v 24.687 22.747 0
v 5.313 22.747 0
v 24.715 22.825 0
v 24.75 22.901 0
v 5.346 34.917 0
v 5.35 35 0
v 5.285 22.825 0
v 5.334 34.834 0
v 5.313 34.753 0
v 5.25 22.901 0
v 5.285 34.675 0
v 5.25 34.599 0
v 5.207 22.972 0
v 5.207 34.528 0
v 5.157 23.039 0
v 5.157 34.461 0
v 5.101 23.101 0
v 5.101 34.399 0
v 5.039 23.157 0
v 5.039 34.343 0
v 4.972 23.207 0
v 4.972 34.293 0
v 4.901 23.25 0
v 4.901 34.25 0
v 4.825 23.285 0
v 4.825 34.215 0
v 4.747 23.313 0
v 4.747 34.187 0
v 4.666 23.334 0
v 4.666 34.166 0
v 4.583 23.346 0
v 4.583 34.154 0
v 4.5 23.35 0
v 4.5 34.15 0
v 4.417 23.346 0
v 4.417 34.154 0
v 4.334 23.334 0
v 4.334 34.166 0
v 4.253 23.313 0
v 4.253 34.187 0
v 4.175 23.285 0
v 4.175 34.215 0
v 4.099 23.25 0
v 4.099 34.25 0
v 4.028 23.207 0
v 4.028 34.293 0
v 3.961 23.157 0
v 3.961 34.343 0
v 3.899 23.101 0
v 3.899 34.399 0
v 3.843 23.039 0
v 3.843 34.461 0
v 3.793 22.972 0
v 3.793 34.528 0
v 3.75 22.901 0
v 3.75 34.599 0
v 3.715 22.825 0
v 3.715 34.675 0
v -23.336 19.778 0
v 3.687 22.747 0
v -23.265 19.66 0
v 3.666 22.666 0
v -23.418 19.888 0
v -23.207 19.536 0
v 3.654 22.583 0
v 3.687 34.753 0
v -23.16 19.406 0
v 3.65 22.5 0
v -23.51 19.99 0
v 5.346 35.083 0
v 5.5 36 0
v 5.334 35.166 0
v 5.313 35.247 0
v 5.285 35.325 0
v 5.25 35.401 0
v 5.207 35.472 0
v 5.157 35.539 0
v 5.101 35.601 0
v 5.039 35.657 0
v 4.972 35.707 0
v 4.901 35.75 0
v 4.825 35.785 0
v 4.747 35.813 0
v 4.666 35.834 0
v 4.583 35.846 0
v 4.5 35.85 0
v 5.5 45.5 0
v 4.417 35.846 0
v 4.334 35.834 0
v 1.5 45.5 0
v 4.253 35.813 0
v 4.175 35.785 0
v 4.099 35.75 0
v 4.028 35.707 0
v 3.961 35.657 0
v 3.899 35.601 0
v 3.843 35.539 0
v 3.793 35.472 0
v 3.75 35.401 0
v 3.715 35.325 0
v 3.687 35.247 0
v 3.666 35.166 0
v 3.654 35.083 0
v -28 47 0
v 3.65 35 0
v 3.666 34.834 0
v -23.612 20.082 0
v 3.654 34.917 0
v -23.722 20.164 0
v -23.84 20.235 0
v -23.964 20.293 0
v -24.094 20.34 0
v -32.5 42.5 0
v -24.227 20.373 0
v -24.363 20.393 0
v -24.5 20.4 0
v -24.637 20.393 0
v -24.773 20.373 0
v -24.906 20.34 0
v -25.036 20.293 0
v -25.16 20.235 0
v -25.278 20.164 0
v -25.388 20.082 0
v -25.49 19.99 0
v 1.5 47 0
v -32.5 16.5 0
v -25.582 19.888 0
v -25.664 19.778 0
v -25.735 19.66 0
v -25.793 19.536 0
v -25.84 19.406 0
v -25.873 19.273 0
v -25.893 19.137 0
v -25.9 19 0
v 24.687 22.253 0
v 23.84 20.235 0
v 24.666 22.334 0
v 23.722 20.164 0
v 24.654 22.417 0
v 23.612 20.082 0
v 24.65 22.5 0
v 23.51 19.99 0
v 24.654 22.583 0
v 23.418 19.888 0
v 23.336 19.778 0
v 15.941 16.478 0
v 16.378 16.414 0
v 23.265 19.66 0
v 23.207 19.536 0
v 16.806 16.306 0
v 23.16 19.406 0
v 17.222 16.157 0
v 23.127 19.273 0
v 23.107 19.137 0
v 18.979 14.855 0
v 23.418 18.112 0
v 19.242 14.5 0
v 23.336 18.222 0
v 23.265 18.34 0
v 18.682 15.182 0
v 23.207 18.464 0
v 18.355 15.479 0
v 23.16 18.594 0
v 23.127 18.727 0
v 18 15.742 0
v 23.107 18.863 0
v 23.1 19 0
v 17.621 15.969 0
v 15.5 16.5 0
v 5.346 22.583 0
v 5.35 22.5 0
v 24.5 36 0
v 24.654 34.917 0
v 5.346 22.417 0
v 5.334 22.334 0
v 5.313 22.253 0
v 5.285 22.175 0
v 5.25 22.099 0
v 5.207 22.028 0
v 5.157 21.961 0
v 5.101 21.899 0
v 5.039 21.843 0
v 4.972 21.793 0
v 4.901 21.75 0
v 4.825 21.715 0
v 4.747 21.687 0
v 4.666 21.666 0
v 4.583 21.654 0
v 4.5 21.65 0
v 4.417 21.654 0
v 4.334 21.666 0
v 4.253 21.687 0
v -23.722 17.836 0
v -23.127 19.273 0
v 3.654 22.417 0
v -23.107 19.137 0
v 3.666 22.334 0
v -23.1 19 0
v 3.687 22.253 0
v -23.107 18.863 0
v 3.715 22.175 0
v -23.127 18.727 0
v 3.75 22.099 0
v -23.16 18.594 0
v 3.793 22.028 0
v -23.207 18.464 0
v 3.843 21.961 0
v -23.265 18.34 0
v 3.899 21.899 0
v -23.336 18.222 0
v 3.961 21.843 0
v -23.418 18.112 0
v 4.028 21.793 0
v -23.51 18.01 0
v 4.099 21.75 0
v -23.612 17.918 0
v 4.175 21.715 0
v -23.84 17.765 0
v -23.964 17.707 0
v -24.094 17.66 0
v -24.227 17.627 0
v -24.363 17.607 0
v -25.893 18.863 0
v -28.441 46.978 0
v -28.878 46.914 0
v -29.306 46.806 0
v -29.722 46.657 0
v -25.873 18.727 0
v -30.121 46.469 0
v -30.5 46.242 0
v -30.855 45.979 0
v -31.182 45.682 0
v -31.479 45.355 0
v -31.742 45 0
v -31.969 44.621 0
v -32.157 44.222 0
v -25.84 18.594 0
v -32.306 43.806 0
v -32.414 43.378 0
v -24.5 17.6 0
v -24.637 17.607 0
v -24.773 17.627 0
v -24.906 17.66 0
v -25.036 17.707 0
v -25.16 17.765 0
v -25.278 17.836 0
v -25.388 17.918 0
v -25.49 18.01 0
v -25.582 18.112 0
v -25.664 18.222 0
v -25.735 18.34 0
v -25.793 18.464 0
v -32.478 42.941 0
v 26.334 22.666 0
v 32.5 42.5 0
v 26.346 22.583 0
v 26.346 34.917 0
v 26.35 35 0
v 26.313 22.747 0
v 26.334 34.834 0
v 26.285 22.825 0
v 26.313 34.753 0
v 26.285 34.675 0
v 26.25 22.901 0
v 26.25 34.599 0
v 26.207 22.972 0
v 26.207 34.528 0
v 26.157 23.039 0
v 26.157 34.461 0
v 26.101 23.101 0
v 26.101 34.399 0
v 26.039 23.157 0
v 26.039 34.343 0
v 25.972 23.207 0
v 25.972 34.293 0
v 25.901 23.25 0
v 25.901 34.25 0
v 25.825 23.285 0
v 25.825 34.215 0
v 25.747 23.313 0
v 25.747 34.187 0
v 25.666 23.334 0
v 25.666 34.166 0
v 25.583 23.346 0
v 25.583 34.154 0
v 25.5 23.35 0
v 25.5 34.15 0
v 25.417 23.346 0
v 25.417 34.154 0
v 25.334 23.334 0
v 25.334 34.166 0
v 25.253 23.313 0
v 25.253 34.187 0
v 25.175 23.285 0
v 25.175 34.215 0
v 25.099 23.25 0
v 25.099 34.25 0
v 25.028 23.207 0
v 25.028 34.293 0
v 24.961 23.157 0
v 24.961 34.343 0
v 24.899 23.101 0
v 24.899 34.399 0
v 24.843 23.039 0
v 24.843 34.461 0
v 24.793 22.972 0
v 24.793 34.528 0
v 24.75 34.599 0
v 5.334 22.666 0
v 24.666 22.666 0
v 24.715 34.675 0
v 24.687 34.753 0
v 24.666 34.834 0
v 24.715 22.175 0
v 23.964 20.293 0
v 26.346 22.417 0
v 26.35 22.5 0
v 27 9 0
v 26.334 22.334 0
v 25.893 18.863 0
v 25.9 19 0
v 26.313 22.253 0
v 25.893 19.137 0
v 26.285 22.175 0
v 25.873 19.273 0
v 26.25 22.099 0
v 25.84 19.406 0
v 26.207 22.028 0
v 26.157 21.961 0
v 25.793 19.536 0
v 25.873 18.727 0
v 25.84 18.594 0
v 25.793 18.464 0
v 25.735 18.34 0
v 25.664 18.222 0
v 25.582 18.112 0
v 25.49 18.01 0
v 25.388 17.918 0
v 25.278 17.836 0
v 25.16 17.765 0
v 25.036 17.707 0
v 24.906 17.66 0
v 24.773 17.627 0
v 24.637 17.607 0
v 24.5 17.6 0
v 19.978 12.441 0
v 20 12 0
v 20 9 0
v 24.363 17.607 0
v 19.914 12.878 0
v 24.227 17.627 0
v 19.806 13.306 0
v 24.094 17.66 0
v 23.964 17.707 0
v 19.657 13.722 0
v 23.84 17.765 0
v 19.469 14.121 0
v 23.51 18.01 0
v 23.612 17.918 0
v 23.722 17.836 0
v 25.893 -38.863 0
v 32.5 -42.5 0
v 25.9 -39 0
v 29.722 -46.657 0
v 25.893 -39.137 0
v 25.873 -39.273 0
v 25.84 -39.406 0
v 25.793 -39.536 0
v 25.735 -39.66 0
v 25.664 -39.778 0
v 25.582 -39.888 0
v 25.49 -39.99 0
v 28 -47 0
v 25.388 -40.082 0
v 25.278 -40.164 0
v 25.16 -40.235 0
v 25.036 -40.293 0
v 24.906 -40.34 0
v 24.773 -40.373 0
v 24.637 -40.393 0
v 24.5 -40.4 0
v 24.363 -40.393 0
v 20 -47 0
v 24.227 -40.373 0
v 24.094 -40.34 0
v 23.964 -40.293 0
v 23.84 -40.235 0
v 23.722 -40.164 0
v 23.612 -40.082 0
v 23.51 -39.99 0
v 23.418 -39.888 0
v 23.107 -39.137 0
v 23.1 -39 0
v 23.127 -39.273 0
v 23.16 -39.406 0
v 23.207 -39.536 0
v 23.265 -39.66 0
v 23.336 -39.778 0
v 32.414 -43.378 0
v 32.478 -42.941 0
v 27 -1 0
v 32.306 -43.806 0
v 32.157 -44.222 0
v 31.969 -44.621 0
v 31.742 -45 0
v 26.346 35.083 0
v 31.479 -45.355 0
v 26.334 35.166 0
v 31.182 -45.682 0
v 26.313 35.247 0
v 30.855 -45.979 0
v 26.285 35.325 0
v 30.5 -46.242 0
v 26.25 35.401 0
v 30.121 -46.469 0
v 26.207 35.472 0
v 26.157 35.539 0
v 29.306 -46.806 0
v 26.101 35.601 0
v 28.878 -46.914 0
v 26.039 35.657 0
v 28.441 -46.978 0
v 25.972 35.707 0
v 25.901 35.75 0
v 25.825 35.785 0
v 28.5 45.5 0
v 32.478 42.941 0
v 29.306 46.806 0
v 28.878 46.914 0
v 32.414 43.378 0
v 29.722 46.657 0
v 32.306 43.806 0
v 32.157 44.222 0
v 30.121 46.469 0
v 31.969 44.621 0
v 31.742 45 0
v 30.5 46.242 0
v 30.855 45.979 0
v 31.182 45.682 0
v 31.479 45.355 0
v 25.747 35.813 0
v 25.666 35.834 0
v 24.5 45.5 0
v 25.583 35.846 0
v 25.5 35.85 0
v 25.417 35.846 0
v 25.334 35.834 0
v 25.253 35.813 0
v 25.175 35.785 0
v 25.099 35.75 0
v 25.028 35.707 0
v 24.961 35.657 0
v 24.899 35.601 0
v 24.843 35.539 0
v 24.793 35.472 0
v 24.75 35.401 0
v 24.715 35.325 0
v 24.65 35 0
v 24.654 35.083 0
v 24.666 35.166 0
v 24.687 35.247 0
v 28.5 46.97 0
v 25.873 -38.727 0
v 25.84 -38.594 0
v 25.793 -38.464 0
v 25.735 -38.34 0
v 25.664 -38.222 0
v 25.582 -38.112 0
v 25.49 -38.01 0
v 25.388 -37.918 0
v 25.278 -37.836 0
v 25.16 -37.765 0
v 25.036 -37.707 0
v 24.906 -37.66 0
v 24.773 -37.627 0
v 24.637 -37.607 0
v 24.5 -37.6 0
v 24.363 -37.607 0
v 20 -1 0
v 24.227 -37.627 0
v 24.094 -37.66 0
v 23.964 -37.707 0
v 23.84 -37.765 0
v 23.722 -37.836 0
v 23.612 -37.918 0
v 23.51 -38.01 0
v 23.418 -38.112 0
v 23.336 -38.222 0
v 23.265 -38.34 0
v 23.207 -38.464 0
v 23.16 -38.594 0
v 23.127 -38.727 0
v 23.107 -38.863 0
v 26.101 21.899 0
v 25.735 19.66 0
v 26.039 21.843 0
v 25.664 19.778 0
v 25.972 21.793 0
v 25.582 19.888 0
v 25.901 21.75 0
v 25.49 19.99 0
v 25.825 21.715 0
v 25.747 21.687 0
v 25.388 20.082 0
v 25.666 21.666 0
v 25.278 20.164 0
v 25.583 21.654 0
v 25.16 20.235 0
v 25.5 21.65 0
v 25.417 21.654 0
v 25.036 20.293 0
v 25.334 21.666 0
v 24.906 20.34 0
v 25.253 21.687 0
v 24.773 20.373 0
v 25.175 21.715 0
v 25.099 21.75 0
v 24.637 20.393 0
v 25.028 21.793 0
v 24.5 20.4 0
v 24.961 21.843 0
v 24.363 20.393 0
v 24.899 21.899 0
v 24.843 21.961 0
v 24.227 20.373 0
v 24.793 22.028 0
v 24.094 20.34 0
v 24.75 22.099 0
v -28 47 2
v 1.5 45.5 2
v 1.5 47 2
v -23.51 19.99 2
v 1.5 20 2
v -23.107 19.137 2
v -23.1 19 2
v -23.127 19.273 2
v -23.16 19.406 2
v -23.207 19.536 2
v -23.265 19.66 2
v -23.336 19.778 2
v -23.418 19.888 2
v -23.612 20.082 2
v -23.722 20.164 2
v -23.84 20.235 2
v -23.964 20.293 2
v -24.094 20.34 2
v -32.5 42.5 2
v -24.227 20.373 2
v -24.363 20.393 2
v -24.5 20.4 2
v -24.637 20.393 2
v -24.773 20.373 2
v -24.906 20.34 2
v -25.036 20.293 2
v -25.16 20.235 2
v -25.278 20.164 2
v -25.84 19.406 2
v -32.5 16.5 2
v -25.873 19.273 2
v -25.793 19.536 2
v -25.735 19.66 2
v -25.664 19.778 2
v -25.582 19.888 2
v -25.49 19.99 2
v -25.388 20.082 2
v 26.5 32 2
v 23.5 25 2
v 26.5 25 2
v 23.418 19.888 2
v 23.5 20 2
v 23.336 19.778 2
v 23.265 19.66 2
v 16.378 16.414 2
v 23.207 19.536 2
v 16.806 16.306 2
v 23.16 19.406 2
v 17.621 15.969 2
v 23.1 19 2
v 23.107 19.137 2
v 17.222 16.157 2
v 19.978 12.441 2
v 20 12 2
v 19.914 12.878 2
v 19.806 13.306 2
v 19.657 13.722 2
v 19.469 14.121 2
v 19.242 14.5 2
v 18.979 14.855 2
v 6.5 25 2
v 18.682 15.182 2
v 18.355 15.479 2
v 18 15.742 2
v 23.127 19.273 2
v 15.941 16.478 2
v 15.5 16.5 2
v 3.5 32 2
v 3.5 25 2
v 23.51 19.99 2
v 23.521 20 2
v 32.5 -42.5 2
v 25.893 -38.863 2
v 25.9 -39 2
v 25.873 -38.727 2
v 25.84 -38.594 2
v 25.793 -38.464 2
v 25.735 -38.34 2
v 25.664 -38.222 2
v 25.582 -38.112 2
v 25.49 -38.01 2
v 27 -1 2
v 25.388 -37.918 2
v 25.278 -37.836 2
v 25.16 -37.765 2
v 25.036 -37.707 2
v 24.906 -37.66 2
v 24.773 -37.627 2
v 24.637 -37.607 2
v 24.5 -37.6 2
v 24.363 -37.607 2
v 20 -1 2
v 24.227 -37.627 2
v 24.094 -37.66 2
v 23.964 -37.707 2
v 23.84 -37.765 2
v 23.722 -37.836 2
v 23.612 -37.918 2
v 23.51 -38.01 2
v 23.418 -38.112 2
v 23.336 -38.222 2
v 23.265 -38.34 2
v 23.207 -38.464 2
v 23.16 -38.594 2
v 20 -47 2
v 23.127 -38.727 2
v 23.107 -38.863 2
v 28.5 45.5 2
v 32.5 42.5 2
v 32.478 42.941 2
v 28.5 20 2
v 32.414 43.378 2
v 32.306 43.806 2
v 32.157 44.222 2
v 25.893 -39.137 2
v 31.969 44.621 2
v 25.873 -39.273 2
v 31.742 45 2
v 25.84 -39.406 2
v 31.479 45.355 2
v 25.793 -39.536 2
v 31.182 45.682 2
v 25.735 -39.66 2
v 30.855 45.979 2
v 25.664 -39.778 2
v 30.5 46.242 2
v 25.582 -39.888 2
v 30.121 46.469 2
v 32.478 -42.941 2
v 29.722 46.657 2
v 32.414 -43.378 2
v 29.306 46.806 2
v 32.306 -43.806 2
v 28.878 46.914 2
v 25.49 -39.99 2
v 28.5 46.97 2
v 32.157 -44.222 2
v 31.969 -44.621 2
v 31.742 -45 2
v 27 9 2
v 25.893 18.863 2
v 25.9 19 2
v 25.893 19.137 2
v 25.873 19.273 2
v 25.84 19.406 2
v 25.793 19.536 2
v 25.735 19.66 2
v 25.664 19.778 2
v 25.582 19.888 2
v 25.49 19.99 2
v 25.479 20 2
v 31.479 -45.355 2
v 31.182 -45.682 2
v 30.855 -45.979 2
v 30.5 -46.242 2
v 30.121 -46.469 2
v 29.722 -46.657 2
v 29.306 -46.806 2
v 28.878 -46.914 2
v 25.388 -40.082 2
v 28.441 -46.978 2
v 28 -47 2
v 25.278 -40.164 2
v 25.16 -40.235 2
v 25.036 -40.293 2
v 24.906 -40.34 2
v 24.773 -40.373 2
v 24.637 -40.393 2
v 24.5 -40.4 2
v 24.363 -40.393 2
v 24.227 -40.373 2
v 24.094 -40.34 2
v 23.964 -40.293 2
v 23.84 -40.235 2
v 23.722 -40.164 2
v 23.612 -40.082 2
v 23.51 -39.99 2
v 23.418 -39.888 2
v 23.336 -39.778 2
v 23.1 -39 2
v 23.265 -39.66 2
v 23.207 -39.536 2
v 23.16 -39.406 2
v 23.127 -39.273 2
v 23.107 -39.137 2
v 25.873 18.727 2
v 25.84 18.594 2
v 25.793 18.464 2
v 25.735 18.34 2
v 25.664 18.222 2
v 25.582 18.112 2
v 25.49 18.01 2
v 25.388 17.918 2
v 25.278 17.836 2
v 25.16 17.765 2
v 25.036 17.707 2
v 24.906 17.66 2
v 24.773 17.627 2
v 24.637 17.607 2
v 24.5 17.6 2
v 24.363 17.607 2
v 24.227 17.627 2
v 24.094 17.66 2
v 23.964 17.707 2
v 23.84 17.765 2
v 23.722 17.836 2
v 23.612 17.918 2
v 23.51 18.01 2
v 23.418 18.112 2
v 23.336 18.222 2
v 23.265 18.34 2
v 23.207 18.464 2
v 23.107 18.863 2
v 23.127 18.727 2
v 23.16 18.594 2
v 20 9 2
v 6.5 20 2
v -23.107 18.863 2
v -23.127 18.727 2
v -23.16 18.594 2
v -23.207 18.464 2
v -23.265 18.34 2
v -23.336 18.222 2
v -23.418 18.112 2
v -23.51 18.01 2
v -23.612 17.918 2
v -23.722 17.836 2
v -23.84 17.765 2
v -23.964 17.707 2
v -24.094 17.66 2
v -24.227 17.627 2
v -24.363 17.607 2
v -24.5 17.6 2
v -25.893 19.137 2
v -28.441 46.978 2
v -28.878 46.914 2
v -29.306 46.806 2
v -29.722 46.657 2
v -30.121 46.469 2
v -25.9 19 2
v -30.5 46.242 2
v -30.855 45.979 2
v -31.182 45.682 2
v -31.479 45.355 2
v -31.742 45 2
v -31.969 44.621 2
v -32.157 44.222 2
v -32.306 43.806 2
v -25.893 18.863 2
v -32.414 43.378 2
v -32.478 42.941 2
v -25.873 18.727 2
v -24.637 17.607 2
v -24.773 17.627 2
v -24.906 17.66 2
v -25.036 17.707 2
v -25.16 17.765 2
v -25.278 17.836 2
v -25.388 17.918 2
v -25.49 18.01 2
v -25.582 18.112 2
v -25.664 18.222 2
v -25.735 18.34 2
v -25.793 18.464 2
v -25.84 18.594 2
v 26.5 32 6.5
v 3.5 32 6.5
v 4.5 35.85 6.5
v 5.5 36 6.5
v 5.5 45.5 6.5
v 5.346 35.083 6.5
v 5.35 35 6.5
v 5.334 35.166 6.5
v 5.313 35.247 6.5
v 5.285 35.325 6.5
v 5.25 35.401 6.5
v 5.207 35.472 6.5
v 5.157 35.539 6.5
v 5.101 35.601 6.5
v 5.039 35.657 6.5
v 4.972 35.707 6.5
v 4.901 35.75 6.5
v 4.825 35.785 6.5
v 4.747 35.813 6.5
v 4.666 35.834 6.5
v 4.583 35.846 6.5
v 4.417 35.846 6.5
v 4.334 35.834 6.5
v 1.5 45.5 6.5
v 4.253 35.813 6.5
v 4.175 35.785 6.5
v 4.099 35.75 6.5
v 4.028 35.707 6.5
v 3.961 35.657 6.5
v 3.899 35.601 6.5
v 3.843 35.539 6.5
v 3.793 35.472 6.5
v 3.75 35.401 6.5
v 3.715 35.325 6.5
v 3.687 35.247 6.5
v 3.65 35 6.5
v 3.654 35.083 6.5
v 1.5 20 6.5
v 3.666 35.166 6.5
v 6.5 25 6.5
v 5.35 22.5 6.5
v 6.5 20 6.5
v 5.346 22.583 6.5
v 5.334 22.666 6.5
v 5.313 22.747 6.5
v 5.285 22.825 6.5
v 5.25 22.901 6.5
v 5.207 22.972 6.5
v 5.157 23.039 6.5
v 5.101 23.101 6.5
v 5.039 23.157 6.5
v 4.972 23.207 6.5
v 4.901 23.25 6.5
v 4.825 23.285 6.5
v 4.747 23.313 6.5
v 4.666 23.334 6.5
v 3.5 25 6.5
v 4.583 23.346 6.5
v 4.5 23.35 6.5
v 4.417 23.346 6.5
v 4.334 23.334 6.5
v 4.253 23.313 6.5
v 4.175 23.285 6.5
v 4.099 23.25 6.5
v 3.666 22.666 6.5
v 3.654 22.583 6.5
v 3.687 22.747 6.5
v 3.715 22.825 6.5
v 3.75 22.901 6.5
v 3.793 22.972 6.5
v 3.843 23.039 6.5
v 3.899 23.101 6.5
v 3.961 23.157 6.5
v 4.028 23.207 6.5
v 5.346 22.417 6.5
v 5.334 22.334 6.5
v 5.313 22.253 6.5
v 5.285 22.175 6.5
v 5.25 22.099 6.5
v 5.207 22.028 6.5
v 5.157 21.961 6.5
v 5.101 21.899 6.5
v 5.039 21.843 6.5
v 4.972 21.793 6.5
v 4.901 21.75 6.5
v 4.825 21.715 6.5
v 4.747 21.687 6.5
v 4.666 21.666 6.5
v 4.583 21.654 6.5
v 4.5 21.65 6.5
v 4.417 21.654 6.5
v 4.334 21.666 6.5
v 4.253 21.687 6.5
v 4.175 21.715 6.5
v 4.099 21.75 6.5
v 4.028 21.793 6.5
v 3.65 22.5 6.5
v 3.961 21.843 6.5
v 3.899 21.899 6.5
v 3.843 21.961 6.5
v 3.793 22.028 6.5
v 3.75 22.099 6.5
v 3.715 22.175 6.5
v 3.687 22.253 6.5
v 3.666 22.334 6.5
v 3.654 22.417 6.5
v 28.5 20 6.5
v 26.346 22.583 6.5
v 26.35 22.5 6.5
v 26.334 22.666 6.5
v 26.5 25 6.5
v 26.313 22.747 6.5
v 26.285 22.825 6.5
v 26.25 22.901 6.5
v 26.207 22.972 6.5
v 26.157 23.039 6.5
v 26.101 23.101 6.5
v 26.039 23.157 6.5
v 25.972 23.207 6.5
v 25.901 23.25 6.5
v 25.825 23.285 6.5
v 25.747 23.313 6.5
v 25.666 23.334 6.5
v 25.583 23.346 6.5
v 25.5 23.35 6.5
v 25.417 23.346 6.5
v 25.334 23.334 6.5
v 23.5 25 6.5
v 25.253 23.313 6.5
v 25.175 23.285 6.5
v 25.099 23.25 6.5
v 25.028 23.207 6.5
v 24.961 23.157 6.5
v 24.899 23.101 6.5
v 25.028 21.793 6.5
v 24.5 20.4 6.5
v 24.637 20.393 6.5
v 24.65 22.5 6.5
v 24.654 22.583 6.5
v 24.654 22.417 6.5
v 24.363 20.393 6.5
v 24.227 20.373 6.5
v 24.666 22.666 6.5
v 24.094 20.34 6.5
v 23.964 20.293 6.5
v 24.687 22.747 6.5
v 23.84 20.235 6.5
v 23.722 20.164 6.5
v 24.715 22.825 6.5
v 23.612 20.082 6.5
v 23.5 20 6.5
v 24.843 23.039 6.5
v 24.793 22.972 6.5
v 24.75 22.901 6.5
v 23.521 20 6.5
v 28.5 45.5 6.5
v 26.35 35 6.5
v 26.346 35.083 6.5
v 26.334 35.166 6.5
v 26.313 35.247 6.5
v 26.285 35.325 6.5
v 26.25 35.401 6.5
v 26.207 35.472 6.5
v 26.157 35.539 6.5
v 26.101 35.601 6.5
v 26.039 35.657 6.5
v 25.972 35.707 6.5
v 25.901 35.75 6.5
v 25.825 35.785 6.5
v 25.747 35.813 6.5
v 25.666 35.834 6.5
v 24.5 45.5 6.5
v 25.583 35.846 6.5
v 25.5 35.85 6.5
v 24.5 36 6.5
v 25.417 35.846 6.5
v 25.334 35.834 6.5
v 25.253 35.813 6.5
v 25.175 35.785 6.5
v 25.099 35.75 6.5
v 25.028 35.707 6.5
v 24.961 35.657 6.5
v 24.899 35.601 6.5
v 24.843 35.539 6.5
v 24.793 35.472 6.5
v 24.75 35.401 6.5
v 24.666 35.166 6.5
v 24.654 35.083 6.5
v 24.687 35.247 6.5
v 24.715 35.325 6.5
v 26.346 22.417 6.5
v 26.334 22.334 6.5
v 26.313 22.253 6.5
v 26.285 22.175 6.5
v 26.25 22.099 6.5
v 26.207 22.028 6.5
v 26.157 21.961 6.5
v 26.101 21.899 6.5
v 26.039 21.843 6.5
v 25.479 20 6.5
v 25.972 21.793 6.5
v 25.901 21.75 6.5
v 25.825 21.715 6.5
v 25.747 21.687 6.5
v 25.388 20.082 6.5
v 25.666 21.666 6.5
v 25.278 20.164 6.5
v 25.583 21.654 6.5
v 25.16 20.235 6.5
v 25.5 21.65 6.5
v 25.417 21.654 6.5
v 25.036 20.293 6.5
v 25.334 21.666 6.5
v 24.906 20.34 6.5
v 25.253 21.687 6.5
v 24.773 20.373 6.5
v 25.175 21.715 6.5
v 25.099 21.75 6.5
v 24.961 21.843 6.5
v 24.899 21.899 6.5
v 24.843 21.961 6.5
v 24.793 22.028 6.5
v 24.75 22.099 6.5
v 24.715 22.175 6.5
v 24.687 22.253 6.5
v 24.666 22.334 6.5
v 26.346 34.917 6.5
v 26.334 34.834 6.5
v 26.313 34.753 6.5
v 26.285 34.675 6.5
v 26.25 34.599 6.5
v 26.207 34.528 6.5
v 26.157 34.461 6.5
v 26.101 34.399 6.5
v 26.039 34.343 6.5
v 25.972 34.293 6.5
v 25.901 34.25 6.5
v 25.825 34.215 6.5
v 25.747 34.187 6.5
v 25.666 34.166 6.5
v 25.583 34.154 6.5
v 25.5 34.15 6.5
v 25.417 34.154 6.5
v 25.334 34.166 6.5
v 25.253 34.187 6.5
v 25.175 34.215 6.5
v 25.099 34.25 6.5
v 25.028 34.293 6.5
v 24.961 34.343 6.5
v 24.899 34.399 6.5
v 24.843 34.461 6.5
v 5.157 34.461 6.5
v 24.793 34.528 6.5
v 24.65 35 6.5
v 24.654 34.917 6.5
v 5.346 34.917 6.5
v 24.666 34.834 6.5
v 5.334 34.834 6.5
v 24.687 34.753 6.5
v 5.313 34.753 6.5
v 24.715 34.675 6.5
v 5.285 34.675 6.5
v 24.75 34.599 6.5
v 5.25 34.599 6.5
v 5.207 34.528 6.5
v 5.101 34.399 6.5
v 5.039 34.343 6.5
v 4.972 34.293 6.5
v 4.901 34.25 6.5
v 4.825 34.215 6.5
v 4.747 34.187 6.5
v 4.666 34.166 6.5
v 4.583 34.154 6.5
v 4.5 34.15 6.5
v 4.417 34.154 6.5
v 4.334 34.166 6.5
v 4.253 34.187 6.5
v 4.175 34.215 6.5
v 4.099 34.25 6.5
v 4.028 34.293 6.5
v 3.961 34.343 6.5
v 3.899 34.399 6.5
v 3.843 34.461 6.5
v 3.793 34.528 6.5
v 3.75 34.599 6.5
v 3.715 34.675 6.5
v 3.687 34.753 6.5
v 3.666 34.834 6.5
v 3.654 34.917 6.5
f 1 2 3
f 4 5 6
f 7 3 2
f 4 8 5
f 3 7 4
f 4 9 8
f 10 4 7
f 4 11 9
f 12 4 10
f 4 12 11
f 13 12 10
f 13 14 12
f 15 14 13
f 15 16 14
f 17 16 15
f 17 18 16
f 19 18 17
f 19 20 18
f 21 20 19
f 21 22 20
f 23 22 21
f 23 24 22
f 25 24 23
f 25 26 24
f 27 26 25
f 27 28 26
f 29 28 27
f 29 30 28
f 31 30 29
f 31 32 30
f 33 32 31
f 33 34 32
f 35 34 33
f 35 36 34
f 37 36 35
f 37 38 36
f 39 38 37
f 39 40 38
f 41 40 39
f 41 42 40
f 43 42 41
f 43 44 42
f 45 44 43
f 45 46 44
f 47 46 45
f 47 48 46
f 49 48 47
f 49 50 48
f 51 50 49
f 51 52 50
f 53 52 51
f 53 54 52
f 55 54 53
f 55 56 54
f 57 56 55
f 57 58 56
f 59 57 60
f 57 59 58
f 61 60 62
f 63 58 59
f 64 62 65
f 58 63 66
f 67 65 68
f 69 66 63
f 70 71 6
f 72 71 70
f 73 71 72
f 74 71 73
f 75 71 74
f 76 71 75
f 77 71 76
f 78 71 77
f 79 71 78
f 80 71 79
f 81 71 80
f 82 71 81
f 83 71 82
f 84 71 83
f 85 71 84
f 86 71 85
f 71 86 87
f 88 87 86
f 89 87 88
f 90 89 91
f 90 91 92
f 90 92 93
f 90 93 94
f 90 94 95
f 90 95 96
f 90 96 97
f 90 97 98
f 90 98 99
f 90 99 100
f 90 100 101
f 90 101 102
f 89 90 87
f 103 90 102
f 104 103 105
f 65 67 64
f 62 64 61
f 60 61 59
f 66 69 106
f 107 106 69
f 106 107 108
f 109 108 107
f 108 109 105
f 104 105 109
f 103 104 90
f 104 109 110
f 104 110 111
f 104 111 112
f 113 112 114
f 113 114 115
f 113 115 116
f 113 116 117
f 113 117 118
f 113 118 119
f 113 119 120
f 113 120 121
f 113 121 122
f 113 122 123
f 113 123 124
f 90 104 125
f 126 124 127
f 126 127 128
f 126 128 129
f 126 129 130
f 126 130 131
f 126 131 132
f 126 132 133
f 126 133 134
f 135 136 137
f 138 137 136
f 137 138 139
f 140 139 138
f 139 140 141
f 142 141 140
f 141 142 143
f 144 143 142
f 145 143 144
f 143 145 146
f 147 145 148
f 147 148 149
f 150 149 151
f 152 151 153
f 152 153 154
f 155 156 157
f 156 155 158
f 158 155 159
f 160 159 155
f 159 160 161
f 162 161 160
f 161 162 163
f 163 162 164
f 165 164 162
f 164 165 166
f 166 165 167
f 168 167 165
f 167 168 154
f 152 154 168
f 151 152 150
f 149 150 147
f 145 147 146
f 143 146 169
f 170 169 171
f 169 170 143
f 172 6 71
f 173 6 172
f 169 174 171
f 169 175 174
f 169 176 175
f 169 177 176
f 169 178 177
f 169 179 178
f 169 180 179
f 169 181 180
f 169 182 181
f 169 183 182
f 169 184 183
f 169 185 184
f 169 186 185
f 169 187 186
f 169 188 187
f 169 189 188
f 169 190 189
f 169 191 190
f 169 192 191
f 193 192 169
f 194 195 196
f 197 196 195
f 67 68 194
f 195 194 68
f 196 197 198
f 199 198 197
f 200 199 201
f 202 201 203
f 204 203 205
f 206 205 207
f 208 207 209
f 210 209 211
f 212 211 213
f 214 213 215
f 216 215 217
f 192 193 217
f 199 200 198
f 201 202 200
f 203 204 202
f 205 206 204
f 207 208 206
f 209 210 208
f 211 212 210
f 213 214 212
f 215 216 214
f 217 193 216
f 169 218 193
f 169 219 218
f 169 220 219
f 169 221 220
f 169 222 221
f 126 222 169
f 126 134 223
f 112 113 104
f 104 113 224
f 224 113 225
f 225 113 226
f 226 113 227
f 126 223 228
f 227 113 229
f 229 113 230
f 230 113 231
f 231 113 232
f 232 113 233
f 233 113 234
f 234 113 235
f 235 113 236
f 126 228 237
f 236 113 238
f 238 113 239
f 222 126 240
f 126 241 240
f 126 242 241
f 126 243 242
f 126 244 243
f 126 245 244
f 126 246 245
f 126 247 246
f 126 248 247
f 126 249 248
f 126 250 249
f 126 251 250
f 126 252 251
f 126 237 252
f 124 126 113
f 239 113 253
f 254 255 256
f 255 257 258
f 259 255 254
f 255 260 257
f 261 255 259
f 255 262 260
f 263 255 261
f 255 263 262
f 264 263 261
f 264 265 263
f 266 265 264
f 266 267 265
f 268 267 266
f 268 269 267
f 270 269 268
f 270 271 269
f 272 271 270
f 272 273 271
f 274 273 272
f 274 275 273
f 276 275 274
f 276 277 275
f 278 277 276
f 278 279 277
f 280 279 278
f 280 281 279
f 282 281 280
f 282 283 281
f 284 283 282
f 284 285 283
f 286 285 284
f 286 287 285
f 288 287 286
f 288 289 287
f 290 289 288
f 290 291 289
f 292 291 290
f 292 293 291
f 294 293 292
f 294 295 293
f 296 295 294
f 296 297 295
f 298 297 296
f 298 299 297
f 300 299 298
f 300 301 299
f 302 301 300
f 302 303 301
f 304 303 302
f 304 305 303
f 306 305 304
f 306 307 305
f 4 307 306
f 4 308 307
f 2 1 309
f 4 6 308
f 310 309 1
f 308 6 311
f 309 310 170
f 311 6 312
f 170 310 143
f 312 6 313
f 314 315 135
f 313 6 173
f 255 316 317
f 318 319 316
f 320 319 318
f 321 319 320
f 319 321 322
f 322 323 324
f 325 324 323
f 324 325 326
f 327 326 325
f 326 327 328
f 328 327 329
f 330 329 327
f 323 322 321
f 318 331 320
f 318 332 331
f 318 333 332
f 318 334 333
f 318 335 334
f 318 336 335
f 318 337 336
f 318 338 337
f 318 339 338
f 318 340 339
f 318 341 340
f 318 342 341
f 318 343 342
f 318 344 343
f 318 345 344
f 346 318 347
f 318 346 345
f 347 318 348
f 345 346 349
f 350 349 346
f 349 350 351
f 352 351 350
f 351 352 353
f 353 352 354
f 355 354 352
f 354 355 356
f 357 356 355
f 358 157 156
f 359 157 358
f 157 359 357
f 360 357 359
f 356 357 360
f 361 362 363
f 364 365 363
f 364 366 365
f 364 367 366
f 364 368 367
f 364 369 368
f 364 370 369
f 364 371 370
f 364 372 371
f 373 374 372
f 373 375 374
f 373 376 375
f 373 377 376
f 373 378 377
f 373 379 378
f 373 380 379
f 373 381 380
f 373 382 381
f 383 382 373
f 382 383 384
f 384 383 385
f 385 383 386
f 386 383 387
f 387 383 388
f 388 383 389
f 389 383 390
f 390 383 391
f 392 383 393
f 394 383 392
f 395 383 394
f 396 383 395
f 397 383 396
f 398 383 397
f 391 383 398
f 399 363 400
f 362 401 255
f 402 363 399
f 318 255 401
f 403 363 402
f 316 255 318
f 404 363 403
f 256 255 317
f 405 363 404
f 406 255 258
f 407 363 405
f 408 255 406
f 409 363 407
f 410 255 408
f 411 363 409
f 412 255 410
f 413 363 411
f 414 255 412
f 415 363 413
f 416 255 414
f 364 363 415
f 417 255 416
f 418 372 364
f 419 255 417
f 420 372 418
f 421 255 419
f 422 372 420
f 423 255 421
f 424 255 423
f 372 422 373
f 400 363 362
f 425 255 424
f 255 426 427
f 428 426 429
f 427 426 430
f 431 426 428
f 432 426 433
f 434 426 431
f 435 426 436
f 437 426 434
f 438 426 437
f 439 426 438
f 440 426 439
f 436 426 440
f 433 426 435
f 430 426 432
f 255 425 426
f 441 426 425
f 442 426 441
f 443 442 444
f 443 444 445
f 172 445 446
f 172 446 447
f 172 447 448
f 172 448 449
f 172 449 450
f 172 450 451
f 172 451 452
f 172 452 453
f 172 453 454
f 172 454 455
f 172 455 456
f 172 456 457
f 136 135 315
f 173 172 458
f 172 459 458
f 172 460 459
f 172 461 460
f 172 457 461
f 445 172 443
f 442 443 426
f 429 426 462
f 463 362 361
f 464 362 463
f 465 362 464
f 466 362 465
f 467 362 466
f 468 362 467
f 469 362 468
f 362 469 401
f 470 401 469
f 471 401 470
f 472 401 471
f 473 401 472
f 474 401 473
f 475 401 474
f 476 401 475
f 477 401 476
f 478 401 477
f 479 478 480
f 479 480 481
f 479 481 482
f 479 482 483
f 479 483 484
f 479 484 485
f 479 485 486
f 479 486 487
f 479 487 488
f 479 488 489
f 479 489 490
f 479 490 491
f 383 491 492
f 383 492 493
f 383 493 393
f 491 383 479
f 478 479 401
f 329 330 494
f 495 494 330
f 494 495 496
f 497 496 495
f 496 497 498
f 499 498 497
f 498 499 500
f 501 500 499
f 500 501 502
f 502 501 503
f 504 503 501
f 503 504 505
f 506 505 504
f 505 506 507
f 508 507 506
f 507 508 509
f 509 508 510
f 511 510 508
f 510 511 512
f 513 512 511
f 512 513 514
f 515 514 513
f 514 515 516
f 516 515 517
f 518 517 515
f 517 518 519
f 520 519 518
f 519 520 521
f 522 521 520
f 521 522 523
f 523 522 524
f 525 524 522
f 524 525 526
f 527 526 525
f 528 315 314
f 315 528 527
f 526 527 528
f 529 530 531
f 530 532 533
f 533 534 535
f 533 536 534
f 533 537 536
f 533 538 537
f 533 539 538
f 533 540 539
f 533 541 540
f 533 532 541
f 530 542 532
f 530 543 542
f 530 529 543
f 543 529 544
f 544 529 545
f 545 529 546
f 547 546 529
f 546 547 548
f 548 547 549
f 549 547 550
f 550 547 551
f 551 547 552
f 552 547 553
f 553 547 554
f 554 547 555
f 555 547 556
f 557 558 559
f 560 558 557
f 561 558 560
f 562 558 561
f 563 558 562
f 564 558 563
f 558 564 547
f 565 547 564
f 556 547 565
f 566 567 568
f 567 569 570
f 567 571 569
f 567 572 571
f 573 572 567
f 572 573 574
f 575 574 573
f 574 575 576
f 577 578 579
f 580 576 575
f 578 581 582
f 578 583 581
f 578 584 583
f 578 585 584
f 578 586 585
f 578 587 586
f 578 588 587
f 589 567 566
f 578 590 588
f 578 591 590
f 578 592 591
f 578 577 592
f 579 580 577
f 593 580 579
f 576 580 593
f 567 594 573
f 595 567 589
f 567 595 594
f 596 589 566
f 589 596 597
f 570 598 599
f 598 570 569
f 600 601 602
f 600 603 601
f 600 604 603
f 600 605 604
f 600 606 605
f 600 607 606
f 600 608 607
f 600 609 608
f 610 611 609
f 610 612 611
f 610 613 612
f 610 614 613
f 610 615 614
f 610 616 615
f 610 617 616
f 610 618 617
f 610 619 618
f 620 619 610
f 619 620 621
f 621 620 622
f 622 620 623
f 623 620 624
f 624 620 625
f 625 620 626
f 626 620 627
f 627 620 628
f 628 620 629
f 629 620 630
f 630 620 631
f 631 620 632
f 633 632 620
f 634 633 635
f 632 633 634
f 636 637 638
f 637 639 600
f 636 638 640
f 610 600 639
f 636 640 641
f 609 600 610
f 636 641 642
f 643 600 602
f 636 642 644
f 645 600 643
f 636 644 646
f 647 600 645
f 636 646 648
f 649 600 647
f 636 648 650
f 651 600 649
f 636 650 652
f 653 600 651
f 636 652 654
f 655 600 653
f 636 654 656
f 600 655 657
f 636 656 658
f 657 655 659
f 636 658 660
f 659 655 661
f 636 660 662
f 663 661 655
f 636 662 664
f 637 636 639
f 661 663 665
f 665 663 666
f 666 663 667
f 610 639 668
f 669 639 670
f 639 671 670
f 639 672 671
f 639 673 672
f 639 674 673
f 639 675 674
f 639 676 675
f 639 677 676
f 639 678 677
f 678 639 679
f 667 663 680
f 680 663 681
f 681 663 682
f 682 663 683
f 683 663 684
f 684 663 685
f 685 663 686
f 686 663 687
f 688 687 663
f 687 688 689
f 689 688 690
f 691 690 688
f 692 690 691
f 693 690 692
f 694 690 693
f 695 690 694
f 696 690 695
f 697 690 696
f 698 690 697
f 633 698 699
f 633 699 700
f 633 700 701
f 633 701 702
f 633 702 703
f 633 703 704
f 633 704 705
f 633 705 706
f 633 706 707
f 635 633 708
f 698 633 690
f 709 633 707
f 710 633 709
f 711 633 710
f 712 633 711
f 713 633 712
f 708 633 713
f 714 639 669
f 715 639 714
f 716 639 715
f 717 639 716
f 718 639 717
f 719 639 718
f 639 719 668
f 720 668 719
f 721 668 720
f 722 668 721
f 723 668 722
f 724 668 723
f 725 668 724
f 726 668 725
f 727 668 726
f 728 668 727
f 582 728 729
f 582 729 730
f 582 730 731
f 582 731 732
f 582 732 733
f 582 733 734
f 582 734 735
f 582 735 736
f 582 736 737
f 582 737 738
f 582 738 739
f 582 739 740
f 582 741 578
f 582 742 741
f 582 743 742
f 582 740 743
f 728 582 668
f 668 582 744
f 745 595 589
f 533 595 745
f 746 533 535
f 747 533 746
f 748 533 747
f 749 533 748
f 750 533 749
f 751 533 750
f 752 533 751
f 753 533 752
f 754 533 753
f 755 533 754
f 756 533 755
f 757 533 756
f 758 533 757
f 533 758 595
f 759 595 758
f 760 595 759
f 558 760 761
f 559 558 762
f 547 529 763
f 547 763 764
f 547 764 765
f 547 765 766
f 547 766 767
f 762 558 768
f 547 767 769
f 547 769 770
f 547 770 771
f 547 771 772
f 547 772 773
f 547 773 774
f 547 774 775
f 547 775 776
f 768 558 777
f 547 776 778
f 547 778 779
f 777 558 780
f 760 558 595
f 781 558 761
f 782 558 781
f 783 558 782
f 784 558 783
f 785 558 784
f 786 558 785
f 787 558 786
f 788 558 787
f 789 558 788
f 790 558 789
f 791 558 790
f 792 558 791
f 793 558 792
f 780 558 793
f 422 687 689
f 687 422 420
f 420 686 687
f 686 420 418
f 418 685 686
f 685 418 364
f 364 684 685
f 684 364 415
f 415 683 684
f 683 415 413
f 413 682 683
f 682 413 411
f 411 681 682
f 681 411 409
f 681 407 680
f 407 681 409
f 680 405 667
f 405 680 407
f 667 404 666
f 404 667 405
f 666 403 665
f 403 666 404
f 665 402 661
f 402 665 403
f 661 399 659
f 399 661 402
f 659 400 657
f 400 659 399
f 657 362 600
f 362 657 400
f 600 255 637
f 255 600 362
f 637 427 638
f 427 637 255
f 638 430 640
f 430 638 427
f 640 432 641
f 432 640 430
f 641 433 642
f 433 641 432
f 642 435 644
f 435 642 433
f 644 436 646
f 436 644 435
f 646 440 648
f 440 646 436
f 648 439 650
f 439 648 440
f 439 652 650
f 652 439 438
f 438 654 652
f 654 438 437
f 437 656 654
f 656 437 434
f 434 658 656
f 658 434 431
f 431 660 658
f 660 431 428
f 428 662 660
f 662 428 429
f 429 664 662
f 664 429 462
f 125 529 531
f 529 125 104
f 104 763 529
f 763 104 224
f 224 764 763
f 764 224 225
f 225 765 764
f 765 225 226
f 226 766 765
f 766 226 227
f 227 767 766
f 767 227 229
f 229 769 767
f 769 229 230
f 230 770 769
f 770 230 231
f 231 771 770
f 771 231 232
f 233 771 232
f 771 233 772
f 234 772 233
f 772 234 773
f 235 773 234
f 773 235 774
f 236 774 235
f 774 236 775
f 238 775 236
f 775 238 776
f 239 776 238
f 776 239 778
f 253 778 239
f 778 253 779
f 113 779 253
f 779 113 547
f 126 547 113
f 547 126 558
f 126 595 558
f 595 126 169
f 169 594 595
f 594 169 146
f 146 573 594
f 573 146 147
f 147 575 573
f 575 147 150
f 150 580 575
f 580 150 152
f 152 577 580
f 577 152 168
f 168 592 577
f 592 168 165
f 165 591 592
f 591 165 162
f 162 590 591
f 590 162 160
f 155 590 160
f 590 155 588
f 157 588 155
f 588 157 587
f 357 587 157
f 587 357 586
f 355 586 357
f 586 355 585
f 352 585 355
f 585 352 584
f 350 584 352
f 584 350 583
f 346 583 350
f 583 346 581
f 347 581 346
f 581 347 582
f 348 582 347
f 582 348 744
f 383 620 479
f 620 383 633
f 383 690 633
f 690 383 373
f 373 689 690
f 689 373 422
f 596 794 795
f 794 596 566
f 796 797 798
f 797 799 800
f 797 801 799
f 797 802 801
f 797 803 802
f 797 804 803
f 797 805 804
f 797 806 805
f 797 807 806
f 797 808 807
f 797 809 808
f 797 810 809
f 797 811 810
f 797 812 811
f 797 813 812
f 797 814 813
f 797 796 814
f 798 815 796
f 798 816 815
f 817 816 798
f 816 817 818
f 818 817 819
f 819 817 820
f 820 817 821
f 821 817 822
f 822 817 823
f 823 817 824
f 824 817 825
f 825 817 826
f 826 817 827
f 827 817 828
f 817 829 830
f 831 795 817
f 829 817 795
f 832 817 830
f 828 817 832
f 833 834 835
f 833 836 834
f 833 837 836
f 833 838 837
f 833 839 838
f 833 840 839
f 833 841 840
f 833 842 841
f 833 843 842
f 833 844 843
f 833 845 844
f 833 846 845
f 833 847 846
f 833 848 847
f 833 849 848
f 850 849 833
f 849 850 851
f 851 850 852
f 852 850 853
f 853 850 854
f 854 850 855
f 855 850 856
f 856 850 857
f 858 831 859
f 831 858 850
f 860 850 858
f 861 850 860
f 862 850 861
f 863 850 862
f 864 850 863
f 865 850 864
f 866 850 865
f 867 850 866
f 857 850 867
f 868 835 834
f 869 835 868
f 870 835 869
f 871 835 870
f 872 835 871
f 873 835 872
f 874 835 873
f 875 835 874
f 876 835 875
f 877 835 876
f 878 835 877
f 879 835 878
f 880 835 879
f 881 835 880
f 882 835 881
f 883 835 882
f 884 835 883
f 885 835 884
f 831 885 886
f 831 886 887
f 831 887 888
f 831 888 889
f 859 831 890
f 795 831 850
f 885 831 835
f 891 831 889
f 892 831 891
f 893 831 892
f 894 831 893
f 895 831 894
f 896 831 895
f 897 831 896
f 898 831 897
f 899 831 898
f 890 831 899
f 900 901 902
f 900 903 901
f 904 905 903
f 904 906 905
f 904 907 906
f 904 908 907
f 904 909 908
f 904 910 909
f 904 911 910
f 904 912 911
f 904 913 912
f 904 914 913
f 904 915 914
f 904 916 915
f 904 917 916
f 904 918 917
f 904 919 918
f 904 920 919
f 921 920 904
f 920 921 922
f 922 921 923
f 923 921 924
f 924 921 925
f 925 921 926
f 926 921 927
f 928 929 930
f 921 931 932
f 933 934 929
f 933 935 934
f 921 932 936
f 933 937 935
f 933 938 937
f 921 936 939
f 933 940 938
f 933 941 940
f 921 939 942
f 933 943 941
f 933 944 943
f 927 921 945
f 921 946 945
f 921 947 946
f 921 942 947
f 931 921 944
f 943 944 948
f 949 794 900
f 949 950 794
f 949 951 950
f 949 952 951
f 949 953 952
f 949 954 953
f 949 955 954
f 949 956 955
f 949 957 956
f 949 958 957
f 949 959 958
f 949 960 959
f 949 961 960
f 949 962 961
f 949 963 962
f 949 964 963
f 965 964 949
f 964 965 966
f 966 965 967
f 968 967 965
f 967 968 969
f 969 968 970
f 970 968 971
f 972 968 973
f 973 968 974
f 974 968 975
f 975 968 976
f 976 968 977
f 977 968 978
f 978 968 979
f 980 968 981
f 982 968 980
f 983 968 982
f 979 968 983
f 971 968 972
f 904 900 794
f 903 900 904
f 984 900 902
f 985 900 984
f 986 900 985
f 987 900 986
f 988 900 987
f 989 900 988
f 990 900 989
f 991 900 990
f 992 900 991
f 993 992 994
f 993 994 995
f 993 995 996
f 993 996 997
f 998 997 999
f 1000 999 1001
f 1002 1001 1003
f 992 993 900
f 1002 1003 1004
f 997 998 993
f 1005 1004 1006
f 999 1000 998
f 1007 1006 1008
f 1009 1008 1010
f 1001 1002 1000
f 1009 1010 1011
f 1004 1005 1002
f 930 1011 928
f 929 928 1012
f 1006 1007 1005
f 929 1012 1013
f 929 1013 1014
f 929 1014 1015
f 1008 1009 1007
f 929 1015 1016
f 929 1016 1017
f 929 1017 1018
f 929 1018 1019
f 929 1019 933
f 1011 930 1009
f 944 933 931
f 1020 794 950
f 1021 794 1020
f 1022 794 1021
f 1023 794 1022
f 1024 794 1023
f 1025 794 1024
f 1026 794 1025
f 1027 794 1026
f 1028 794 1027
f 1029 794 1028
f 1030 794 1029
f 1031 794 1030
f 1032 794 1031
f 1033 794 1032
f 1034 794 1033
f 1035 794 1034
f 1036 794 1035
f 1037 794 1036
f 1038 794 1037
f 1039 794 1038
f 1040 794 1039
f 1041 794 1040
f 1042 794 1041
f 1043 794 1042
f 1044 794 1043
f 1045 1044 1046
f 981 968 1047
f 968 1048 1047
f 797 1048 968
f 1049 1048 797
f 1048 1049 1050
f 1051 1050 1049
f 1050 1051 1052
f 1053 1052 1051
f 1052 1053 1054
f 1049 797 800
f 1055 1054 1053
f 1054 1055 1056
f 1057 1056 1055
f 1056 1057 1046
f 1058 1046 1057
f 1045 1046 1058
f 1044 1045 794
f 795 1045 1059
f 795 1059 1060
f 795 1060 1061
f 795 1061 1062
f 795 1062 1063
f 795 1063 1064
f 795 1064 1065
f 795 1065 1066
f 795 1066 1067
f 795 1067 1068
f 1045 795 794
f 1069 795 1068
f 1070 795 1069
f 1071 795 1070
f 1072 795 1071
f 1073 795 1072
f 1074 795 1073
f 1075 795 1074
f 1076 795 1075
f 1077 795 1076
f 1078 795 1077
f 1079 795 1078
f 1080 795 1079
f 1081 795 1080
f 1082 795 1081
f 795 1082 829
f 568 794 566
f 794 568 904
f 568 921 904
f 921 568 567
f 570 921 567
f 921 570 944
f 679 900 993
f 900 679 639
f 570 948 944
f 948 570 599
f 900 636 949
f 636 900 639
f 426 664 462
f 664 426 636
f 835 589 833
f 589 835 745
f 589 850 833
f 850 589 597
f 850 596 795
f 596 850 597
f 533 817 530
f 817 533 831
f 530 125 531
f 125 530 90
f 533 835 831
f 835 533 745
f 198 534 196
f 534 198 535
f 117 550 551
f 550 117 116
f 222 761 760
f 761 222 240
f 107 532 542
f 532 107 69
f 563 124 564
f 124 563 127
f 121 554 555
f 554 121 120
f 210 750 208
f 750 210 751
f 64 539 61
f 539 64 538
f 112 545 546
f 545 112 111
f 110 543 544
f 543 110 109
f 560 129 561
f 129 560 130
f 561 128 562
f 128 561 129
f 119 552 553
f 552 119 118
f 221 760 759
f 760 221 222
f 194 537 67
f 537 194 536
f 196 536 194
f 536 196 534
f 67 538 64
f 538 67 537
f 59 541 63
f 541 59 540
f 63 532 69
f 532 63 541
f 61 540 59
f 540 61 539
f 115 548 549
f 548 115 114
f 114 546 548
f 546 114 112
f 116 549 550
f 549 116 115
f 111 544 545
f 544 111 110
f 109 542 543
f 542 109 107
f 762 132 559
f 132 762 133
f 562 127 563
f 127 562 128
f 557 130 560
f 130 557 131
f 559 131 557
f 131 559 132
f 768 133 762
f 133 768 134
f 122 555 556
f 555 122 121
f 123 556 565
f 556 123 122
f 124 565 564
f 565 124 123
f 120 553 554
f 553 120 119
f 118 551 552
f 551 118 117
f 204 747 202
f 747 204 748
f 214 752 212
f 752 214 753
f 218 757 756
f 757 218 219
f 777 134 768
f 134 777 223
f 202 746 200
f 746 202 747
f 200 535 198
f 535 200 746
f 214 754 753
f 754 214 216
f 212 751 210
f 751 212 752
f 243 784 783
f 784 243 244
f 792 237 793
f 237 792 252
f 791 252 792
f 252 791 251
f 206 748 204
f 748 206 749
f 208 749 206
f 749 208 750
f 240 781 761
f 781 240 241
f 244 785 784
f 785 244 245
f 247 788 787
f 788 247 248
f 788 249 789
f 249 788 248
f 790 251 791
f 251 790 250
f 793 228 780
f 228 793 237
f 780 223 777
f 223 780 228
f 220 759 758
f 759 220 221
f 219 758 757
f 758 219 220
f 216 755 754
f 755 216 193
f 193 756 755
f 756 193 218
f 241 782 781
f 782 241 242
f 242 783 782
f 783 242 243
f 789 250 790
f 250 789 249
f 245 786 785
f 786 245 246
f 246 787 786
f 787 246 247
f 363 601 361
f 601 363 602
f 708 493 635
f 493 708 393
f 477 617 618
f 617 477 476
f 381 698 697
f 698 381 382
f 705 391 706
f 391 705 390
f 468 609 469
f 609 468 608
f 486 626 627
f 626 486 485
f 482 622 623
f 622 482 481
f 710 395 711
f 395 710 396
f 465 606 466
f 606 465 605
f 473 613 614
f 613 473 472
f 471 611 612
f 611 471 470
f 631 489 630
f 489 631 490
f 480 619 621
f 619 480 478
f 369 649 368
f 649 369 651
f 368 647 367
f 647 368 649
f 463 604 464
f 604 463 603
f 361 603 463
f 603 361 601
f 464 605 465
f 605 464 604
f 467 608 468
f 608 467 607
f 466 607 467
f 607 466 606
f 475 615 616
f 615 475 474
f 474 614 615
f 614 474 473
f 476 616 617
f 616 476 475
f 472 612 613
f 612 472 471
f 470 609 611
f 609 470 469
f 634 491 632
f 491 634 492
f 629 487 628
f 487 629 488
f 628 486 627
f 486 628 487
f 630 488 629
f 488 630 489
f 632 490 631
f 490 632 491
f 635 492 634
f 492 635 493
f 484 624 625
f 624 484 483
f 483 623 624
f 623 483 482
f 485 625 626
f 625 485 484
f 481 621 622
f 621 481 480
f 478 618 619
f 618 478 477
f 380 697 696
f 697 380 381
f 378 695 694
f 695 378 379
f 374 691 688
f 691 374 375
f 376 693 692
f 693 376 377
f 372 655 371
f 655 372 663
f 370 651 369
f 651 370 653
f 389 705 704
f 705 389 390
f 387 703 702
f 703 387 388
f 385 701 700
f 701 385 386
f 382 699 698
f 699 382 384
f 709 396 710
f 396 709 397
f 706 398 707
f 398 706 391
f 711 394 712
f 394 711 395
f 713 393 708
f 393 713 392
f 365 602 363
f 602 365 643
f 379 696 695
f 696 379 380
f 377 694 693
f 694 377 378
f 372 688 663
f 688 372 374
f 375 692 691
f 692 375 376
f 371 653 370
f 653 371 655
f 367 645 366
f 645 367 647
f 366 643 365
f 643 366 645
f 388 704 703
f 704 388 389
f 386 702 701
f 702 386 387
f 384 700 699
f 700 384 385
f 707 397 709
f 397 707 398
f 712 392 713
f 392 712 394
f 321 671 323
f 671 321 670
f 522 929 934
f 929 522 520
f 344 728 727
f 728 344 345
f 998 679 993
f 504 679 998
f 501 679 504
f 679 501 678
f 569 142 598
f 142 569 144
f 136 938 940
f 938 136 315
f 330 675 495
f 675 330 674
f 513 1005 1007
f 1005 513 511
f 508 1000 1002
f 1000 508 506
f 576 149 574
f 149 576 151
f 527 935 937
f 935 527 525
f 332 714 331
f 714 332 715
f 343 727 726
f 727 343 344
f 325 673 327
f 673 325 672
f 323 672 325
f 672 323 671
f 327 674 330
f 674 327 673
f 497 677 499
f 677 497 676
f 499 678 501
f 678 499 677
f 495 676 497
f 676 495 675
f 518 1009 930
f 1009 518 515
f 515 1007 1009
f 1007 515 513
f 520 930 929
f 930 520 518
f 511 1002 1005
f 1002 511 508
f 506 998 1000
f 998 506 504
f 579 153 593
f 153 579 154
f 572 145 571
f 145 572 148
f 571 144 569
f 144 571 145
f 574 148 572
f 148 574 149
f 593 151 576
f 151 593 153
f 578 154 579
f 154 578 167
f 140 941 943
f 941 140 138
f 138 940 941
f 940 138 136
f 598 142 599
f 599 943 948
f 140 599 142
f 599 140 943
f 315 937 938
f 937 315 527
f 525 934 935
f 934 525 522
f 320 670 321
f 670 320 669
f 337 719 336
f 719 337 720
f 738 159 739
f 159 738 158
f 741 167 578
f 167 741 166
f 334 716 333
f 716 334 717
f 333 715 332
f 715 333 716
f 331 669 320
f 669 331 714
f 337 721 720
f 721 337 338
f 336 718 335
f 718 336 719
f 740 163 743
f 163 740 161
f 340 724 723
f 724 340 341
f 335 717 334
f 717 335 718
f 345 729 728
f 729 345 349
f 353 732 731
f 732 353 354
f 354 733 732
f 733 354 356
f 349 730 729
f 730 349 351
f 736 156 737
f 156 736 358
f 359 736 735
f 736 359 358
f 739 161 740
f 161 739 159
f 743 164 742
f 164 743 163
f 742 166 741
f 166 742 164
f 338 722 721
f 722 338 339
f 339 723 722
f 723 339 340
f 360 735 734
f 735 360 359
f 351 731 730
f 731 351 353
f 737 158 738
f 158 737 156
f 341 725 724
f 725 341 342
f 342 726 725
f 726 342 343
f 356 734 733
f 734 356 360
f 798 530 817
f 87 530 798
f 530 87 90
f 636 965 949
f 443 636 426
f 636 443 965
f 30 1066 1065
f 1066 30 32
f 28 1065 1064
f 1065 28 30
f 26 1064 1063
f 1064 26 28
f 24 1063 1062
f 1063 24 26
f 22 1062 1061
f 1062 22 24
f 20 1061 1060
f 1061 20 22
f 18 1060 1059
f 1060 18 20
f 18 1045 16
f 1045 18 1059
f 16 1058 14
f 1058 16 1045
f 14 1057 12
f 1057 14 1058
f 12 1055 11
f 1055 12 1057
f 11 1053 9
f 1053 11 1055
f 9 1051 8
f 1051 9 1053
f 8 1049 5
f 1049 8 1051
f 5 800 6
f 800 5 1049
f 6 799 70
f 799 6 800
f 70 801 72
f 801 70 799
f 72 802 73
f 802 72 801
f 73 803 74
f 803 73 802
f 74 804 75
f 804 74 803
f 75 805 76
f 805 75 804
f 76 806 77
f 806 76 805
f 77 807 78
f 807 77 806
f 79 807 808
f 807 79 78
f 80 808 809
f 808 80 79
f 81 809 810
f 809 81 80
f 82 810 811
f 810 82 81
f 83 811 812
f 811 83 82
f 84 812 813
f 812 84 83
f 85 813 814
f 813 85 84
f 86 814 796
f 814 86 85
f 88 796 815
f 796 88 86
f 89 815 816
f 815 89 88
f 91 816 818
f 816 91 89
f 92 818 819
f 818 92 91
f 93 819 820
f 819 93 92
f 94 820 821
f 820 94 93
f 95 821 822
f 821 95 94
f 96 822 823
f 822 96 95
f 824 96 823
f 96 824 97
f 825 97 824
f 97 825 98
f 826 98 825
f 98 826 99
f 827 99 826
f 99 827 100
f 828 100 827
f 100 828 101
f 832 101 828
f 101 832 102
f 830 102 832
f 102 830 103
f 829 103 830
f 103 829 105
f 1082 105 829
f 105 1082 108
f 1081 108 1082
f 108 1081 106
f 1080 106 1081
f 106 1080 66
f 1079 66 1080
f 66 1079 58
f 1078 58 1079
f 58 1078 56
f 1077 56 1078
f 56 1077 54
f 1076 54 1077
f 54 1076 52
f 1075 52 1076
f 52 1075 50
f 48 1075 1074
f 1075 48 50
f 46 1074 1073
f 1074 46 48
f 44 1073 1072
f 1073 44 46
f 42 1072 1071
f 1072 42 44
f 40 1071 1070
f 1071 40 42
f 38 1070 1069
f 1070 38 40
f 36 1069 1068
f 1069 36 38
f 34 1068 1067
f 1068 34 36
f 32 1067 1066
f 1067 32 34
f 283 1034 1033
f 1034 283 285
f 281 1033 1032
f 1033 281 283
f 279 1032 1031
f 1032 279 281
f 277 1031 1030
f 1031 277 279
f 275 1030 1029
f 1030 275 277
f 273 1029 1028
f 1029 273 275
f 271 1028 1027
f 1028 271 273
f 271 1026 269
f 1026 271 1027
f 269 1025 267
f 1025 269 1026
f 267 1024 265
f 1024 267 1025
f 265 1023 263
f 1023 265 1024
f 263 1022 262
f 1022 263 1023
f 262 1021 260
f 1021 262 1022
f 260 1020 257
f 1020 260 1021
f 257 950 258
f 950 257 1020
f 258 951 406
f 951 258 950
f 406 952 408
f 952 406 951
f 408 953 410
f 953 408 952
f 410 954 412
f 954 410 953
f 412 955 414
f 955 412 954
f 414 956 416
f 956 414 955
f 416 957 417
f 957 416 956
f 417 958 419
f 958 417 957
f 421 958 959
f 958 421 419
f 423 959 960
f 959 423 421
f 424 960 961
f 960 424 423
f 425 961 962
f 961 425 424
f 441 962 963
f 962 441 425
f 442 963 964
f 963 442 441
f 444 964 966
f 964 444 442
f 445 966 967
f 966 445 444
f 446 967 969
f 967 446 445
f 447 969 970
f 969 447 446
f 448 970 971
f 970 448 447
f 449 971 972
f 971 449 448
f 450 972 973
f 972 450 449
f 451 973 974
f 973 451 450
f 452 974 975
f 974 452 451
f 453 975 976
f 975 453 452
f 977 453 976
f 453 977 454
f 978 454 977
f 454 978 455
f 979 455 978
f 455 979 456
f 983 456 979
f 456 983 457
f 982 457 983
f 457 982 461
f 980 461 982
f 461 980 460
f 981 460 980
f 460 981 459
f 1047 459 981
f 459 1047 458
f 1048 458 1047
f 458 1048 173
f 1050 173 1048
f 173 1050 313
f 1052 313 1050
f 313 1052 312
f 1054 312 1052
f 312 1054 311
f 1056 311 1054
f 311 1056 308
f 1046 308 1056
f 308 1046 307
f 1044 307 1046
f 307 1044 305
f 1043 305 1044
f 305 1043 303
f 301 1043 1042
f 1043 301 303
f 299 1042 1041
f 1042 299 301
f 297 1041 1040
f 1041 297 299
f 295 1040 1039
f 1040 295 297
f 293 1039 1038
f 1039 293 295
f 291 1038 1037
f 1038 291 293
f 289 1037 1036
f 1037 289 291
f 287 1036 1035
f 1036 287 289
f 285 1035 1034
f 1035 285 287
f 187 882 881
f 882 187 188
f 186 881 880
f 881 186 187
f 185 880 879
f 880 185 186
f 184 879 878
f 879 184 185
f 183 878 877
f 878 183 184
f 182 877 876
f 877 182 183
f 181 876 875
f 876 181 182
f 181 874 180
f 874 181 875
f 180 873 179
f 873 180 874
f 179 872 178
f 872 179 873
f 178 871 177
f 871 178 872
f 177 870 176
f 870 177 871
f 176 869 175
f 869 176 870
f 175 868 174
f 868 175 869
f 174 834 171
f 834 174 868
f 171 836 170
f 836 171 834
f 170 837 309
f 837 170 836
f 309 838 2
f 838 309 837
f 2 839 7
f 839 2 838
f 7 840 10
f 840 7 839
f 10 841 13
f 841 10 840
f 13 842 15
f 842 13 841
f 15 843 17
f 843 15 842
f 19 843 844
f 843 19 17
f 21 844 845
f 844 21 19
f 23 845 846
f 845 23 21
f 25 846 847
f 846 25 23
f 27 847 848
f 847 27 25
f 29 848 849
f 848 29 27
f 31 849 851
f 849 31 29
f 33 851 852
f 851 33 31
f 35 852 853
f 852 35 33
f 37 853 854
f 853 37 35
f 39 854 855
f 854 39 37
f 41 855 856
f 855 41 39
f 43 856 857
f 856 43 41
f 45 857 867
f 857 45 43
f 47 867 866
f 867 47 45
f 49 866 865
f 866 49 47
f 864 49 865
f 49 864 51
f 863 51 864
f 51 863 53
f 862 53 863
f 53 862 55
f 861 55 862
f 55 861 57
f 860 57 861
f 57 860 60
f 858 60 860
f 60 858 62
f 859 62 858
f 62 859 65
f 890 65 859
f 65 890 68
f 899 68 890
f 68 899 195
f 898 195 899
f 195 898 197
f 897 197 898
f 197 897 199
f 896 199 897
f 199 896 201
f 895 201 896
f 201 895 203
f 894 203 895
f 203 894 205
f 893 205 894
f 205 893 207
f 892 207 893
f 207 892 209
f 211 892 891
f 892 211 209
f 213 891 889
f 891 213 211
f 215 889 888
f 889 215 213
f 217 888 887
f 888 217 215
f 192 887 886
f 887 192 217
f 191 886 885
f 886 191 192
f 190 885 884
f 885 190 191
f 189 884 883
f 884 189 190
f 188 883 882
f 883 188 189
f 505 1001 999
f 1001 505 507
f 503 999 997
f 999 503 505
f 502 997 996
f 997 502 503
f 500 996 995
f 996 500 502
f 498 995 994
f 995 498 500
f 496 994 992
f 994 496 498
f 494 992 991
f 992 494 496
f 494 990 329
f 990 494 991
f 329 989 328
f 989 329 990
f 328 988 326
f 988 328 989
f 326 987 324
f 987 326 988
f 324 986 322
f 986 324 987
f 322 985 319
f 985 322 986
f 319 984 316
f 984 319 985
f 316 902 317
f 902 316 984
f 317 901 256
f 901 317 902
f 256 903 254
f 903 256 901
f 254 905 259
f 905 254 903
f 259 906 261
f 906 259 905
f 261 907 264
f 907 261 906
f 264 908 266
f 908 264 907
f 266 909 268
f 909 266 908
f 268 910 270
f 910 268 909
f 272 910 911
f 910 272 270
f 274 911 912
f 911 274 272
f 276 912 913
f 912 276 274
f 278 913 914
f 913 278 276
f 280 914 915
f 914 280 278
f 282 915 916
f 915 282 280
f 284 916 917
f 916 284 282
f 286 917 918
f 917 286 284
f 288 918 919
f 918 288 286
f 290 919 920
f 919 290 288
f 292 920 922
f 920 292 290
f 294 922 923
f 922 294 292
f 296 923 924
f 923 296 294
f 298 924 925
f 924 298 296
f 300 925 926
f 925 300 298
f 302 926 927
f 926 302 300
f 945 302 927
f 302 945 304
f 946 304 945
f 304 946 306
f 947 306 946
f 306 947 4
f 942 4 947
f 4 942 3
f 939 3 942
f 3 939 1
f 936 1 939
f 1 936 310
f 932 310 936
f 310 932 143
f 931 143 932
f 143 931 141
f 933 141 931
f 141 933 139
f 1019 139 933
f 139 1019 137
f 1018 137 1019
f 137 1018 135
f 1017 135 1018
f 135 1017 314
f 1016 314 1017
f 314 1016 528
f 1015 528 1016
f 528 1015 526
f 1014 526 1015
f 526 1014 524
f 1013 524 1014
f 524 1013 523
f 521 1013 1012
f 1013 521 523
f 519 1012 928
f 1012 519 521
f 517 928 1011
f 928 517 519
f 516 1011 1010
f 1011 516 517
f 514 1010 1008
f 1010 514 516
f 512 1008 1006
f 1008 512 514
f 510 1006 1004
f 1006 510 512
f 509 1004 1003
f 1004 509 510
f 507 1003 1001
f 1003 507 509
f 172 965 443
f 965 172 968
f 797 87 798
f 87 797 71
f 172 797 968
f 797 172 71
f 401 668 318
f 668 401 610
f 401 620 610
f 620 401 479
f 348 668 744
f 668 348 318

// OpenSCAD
$fn=64;

// Bracket to secure the Arducam B0091 CSI-to-HDMI Adapter board above the
// Raspberry Pi 4B USB-A ports.

difference() {
  union() {
    // Walls
    linear_extrude(height=2)
      difference() {
        offset(r=2.5+2)
          square([56,85],center=true);
      offset(r=2.5+2)
        translate([-27,-18,0])
          square([85,60],center=true);
    }
    // HDMI connector riser
    translate([15,27+16,0])
      difference() {
        linear_extrude(height=6.5)
          square([23.5, 22], center=true);
      }
    // Inner screw bosses, fit around FFP cable
    translate([15,27+4.5,0])
      linear_extrude(height=6.5) {
        for(x=[11,-11])
          translate([x,-9])
            square([5, 5], center=true);
        for(x=[12.5,-12.5])
          translate([x, 2])
            square([2, 26], center=true);
      }
    }
    // Top notch (near HDMI)
    translate([15,27,0])
      linear_extrude(height=12)
        translate([0,26])
          square([27,15],center=true);
    // Inner screw holes
    translate([15,27,-1])
      linear_extrude(height=10)
        union()
          for(x=[-10.5,10.5])
            for(y=[-4.5,8])
              translate([x,y])
                circle(d=1.7);
    // HDMI connector cutout
    translate([15,27+17,0])
        translate([0,3,-1])
          linear_extrude(height=10)
            square([19, 22], center=true);
    // FFP cable cutout
    #translate([15, 4, -2])
      linear_extrude(height=5)
        square([24, 10], center=true);
    // Holes for RPi mounting
    for(hole=[[-24.5,-39], [-24.5,19], [24.5,-39], [24.5,19]])
      #translate([hole[0], hole[1], -5])
        cylinder(d=2.8, h=20);
}
